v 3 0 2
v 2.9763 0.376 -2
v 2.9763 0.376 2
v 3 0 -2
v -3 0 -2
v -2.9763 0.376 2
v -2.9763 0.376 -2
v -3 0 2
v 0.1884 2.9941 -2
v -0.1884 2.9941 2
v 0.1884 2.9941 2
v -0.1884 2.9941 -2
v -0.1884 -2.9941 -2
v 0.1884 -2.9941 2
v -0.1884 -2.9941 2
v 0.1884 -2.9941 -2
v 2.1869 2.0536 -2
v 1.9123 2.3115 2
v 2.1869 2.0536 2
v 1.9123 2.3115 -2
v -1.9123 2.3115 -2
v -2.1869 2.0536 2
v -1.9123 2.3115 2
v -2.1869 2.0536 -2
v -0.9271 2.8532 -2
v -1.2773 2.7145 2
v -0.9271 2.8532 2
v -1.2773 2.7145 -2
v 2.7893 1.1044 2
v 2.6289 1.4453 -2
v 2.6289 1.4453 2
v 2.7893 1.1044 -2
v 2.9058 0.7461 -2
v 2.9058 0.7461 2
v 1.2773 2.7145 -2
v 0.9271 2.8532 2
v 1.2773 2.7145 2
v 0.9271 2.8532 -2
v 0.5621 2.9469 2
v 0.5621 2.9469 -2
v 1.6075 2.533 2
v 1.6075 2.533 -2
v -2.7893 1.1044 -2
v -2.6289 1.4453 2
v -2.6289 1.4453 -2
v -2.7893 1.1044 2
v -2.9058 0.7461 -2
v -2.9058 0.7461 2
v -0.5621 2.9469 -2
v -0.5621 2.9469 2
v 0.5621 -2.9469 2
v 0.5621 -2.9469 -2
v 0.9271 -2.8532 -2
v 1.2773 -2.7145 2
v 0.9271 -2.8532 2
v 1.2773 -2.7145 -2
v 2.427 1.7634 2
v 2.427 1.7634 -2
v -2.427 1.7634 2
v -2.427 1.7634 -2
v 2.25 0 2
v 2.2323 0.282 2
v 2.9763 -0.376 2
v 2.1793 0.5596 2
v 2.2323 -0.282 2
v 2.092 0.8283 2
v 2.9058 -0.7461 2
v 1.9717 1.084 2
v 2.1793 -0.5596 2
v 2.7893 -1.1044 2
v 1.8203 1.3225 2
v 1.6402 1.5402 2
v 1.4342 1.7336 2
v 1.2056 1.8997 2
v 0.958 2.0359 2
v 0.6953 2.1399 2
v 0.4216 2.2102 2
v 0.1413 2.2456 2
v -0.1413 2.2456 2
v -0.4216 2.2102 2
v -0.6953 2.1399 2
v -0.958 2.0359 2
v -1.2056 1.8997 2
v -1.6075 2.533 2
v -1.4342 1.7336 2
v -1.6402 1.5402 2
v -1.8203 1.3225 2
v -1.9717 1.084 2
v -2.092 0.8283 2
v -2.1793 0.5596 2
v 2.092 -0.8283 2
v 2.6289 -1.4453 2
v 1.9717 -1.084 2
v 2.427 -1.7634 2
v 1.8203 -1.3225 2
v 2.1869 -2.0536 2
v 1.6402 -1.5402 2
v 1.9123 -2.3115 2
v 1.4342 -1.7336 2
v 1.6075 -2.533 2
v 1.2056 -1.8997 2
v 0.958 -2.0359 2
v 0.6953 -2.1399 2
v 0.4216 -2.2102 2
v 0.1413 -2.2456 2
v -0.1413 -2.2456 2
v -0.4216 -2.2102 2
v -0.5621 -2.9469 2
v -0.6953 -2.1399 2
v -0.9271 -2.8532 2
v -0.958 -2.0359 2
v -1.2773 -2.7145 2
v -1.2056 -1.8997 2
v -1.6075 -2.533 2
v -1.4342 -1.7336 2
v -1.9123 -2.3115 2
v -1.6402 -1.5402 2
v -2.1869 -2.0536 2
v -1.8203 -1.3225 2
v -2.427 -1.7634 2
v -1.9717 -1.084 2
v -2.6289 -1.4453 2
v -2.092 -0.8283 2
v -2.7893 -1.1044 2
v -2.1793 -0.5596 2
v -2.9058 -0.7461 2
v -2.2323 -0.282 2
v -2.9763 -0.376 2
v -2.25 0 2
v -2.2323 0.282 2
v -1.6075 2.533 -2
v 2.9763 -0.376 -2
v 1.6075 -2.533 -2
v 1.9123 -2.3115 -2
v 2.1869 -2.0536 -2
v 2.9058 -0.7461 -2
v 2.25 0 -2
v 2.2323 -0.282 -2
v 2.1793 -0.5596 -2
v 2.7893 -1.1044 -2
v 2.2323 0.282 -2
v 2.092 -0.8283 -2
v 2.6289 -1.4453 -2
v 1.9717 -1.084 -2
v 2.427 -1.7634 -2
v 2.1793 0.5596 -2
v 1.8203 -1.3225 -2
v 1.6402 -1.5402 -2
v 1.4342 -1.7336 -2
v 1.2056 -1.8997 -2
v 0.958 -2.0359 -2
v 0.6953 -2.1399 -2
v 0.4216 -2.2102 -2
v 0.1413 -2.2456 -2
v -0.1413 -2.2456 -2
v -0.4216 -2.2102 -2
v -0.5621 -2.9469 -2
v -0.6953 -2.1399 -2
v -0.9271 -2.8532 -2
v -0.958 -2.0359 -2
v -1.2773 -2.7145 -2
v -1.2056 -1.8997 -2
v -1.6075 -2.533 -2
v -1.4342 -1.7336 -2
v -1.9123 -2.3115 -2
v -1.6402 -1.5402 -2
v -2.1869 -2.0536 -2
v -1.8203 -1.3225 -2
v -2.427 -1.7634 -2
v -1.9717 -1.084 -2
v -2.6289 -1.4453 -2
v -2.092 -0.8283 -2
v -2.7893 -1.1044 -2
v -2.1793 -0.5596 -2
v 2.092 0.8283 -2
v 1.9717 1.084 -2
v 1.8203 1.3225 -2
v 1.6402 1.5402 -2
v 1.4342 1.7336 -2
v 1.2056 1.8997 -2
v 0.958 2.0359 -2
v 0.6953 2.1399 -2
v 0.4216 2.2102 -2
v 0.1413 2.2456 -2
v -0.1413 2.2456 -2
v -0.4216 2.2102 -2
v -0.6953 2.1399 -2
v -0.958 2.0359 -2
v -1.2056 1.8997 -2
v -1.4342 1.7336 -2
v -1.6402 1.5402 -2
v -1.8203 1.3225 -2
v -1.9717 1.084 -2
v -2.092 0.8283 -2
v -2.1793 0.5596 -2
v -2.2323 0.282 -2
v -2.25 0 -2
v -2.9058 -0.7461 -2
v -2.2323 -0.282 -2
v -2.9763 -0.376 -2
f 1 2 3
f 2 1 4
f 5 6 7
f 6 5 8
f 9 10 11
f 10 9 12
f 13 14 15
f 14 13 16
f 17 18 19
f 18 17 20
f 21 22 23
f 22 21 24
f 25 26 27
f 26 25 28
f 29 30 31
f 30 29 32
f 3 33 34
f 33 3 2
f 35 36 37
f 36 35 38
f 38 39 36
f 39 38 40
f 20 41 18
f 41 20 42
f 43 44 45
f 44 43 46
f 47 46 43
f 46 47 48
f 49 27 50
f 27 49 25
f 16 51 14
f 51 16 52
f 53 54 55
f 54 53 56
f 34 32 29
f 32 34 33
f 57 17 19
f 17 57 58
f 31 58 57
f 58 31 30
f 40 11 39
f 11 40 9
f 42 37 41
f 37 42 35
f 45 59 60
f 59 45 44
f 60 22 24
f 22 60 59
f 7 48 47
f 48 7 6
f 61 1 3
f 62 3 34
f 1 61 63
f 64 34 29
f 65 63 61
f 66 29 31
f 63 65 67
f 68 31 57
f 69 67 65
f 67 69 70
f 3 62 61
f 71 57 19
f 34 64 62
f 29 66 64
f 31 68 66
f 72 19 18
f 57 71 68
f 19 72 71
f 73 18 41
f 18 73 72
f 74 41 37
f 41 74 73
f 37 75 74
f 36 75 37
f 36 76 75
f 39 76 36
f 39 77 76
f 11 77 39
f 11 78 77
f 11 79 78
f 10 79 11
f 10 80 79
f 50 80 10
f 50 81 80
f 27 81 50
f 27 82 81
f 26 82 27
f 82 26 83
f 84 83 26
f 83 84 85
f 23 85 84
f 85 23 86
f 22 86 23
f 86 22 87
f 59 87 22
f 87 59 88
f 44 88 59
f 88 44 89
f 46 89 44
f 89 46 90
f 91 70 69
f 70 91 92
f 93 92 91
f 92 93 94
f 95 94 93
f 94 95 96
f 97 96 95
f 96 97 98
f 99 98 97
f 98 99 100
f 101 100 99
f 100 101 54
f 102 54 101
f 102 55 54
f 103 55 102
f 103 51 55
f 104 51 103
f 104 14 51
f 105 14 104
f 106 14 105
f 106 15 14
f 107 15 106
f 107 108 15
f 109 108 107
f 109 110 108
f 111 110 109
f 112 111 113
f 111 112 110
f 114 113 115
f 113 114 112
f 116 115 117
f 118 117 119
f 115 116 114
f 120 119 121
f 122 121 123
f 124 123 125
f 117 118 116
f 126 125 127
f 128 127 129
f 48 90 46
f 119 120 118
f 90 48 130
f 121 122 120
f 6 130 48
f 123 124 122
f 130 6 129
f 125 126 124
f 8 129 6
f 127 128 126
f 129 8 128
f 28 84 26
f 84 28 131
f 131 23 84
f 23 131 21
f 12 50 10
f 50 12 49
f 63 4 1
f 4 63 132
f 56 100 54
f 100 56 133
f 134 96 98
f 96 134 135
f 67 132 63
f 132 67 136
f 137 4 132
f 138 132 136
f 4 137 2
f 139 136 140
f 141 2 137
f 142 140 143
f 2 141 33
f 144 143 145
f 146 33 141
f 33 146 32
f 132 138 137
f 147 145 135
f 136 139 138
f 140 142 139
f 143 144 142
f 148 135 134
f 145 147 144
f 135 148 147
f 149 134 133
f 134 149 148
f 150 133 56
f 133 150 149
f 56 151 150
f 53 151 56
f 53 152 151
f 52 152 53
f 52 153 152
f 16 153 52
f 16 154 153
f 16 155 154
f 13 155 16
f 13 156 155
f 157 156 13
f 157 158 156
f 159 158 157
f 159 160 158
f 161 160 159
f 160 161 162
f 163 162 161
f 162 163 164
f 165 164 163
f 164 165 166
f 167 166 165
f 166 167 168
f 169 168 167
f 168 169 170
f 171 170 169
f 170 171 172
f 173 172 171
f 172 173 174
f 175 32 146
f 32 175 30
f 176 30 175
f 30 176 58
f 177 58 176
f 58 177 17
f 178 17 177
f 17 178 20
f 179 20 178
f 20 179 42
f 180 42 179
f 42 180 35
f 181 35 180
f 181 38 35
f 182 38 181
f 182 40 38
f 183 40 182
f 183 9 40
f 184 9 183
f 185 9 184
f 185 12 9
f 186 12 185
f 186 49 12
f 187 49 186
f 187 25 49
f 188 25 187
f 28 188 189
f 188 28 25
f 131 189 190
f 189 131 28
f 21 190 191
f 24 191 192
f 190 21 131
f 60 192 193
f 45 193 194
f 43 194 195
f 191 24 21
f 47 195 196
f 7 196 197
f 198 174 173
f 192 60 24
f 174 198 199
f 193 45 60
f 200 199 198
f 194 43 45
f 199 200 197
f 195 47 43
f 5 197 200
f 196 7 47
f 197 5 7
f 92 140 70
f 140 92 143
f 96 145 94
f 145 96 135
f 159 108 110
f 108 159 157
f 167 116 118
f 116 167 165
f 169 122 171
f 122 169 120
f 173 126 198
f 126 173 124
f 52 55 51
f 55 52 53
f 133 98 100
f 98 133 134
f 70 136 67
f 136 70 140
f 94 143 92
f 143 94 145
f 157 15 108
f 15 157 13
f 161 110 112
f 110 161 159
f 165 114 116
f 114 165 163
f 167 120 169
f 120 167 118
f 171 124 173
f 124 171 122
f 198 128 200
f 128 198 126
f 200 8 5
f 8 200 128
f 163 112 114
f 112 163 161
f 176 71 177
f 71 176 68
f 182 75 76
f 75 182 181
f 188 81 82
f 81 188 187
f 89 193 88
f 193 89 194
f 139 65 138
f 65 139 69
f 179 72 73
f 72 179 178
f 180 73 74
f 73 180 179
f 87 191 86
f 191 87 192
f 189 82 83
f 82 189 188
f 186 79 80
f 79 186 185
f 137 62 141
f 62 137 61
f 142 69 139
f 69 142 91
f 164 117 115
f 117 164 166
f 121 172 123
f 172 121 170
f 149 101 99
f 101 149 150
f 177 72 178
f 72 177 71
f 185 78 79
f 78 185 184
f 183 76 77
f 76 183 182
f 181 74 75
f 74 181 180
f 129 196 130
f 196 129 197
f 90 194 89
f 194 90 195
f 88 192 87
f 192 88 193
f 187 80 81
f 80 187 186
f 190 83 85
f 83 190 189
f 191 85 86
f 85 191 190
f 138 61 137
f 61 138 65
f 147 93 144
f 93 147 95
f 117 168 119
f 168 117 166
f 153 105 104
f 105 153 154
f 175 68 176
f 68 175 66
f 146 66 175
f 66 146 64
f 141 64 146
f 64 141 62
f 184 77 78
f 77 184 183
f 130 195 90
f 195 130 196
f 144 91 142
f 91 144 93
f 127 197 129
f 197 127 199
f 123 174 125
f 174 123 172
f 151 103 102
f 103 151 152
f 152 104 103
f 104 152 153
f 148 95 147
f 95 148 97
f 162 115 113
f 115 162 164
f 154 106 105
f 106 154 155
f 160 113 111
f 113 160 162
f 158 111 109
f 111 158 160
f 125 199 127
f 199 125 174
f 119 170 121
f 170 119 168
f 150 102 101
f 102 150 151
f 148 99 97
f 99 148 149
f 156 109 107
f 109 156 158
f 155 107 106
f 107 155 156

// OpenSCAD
$fn = 50;


difference() {
	union() {
		translate(v = [0, 0, -2.0000000000]) {
			cylinder(h = 4, r = 3.0000000000);
		}
	}
	union() {
		translate(v = [0, 0, -100.0000000000]) {
			cylinder(h = 200, r = 2.2500000000);
		}
	}
}
